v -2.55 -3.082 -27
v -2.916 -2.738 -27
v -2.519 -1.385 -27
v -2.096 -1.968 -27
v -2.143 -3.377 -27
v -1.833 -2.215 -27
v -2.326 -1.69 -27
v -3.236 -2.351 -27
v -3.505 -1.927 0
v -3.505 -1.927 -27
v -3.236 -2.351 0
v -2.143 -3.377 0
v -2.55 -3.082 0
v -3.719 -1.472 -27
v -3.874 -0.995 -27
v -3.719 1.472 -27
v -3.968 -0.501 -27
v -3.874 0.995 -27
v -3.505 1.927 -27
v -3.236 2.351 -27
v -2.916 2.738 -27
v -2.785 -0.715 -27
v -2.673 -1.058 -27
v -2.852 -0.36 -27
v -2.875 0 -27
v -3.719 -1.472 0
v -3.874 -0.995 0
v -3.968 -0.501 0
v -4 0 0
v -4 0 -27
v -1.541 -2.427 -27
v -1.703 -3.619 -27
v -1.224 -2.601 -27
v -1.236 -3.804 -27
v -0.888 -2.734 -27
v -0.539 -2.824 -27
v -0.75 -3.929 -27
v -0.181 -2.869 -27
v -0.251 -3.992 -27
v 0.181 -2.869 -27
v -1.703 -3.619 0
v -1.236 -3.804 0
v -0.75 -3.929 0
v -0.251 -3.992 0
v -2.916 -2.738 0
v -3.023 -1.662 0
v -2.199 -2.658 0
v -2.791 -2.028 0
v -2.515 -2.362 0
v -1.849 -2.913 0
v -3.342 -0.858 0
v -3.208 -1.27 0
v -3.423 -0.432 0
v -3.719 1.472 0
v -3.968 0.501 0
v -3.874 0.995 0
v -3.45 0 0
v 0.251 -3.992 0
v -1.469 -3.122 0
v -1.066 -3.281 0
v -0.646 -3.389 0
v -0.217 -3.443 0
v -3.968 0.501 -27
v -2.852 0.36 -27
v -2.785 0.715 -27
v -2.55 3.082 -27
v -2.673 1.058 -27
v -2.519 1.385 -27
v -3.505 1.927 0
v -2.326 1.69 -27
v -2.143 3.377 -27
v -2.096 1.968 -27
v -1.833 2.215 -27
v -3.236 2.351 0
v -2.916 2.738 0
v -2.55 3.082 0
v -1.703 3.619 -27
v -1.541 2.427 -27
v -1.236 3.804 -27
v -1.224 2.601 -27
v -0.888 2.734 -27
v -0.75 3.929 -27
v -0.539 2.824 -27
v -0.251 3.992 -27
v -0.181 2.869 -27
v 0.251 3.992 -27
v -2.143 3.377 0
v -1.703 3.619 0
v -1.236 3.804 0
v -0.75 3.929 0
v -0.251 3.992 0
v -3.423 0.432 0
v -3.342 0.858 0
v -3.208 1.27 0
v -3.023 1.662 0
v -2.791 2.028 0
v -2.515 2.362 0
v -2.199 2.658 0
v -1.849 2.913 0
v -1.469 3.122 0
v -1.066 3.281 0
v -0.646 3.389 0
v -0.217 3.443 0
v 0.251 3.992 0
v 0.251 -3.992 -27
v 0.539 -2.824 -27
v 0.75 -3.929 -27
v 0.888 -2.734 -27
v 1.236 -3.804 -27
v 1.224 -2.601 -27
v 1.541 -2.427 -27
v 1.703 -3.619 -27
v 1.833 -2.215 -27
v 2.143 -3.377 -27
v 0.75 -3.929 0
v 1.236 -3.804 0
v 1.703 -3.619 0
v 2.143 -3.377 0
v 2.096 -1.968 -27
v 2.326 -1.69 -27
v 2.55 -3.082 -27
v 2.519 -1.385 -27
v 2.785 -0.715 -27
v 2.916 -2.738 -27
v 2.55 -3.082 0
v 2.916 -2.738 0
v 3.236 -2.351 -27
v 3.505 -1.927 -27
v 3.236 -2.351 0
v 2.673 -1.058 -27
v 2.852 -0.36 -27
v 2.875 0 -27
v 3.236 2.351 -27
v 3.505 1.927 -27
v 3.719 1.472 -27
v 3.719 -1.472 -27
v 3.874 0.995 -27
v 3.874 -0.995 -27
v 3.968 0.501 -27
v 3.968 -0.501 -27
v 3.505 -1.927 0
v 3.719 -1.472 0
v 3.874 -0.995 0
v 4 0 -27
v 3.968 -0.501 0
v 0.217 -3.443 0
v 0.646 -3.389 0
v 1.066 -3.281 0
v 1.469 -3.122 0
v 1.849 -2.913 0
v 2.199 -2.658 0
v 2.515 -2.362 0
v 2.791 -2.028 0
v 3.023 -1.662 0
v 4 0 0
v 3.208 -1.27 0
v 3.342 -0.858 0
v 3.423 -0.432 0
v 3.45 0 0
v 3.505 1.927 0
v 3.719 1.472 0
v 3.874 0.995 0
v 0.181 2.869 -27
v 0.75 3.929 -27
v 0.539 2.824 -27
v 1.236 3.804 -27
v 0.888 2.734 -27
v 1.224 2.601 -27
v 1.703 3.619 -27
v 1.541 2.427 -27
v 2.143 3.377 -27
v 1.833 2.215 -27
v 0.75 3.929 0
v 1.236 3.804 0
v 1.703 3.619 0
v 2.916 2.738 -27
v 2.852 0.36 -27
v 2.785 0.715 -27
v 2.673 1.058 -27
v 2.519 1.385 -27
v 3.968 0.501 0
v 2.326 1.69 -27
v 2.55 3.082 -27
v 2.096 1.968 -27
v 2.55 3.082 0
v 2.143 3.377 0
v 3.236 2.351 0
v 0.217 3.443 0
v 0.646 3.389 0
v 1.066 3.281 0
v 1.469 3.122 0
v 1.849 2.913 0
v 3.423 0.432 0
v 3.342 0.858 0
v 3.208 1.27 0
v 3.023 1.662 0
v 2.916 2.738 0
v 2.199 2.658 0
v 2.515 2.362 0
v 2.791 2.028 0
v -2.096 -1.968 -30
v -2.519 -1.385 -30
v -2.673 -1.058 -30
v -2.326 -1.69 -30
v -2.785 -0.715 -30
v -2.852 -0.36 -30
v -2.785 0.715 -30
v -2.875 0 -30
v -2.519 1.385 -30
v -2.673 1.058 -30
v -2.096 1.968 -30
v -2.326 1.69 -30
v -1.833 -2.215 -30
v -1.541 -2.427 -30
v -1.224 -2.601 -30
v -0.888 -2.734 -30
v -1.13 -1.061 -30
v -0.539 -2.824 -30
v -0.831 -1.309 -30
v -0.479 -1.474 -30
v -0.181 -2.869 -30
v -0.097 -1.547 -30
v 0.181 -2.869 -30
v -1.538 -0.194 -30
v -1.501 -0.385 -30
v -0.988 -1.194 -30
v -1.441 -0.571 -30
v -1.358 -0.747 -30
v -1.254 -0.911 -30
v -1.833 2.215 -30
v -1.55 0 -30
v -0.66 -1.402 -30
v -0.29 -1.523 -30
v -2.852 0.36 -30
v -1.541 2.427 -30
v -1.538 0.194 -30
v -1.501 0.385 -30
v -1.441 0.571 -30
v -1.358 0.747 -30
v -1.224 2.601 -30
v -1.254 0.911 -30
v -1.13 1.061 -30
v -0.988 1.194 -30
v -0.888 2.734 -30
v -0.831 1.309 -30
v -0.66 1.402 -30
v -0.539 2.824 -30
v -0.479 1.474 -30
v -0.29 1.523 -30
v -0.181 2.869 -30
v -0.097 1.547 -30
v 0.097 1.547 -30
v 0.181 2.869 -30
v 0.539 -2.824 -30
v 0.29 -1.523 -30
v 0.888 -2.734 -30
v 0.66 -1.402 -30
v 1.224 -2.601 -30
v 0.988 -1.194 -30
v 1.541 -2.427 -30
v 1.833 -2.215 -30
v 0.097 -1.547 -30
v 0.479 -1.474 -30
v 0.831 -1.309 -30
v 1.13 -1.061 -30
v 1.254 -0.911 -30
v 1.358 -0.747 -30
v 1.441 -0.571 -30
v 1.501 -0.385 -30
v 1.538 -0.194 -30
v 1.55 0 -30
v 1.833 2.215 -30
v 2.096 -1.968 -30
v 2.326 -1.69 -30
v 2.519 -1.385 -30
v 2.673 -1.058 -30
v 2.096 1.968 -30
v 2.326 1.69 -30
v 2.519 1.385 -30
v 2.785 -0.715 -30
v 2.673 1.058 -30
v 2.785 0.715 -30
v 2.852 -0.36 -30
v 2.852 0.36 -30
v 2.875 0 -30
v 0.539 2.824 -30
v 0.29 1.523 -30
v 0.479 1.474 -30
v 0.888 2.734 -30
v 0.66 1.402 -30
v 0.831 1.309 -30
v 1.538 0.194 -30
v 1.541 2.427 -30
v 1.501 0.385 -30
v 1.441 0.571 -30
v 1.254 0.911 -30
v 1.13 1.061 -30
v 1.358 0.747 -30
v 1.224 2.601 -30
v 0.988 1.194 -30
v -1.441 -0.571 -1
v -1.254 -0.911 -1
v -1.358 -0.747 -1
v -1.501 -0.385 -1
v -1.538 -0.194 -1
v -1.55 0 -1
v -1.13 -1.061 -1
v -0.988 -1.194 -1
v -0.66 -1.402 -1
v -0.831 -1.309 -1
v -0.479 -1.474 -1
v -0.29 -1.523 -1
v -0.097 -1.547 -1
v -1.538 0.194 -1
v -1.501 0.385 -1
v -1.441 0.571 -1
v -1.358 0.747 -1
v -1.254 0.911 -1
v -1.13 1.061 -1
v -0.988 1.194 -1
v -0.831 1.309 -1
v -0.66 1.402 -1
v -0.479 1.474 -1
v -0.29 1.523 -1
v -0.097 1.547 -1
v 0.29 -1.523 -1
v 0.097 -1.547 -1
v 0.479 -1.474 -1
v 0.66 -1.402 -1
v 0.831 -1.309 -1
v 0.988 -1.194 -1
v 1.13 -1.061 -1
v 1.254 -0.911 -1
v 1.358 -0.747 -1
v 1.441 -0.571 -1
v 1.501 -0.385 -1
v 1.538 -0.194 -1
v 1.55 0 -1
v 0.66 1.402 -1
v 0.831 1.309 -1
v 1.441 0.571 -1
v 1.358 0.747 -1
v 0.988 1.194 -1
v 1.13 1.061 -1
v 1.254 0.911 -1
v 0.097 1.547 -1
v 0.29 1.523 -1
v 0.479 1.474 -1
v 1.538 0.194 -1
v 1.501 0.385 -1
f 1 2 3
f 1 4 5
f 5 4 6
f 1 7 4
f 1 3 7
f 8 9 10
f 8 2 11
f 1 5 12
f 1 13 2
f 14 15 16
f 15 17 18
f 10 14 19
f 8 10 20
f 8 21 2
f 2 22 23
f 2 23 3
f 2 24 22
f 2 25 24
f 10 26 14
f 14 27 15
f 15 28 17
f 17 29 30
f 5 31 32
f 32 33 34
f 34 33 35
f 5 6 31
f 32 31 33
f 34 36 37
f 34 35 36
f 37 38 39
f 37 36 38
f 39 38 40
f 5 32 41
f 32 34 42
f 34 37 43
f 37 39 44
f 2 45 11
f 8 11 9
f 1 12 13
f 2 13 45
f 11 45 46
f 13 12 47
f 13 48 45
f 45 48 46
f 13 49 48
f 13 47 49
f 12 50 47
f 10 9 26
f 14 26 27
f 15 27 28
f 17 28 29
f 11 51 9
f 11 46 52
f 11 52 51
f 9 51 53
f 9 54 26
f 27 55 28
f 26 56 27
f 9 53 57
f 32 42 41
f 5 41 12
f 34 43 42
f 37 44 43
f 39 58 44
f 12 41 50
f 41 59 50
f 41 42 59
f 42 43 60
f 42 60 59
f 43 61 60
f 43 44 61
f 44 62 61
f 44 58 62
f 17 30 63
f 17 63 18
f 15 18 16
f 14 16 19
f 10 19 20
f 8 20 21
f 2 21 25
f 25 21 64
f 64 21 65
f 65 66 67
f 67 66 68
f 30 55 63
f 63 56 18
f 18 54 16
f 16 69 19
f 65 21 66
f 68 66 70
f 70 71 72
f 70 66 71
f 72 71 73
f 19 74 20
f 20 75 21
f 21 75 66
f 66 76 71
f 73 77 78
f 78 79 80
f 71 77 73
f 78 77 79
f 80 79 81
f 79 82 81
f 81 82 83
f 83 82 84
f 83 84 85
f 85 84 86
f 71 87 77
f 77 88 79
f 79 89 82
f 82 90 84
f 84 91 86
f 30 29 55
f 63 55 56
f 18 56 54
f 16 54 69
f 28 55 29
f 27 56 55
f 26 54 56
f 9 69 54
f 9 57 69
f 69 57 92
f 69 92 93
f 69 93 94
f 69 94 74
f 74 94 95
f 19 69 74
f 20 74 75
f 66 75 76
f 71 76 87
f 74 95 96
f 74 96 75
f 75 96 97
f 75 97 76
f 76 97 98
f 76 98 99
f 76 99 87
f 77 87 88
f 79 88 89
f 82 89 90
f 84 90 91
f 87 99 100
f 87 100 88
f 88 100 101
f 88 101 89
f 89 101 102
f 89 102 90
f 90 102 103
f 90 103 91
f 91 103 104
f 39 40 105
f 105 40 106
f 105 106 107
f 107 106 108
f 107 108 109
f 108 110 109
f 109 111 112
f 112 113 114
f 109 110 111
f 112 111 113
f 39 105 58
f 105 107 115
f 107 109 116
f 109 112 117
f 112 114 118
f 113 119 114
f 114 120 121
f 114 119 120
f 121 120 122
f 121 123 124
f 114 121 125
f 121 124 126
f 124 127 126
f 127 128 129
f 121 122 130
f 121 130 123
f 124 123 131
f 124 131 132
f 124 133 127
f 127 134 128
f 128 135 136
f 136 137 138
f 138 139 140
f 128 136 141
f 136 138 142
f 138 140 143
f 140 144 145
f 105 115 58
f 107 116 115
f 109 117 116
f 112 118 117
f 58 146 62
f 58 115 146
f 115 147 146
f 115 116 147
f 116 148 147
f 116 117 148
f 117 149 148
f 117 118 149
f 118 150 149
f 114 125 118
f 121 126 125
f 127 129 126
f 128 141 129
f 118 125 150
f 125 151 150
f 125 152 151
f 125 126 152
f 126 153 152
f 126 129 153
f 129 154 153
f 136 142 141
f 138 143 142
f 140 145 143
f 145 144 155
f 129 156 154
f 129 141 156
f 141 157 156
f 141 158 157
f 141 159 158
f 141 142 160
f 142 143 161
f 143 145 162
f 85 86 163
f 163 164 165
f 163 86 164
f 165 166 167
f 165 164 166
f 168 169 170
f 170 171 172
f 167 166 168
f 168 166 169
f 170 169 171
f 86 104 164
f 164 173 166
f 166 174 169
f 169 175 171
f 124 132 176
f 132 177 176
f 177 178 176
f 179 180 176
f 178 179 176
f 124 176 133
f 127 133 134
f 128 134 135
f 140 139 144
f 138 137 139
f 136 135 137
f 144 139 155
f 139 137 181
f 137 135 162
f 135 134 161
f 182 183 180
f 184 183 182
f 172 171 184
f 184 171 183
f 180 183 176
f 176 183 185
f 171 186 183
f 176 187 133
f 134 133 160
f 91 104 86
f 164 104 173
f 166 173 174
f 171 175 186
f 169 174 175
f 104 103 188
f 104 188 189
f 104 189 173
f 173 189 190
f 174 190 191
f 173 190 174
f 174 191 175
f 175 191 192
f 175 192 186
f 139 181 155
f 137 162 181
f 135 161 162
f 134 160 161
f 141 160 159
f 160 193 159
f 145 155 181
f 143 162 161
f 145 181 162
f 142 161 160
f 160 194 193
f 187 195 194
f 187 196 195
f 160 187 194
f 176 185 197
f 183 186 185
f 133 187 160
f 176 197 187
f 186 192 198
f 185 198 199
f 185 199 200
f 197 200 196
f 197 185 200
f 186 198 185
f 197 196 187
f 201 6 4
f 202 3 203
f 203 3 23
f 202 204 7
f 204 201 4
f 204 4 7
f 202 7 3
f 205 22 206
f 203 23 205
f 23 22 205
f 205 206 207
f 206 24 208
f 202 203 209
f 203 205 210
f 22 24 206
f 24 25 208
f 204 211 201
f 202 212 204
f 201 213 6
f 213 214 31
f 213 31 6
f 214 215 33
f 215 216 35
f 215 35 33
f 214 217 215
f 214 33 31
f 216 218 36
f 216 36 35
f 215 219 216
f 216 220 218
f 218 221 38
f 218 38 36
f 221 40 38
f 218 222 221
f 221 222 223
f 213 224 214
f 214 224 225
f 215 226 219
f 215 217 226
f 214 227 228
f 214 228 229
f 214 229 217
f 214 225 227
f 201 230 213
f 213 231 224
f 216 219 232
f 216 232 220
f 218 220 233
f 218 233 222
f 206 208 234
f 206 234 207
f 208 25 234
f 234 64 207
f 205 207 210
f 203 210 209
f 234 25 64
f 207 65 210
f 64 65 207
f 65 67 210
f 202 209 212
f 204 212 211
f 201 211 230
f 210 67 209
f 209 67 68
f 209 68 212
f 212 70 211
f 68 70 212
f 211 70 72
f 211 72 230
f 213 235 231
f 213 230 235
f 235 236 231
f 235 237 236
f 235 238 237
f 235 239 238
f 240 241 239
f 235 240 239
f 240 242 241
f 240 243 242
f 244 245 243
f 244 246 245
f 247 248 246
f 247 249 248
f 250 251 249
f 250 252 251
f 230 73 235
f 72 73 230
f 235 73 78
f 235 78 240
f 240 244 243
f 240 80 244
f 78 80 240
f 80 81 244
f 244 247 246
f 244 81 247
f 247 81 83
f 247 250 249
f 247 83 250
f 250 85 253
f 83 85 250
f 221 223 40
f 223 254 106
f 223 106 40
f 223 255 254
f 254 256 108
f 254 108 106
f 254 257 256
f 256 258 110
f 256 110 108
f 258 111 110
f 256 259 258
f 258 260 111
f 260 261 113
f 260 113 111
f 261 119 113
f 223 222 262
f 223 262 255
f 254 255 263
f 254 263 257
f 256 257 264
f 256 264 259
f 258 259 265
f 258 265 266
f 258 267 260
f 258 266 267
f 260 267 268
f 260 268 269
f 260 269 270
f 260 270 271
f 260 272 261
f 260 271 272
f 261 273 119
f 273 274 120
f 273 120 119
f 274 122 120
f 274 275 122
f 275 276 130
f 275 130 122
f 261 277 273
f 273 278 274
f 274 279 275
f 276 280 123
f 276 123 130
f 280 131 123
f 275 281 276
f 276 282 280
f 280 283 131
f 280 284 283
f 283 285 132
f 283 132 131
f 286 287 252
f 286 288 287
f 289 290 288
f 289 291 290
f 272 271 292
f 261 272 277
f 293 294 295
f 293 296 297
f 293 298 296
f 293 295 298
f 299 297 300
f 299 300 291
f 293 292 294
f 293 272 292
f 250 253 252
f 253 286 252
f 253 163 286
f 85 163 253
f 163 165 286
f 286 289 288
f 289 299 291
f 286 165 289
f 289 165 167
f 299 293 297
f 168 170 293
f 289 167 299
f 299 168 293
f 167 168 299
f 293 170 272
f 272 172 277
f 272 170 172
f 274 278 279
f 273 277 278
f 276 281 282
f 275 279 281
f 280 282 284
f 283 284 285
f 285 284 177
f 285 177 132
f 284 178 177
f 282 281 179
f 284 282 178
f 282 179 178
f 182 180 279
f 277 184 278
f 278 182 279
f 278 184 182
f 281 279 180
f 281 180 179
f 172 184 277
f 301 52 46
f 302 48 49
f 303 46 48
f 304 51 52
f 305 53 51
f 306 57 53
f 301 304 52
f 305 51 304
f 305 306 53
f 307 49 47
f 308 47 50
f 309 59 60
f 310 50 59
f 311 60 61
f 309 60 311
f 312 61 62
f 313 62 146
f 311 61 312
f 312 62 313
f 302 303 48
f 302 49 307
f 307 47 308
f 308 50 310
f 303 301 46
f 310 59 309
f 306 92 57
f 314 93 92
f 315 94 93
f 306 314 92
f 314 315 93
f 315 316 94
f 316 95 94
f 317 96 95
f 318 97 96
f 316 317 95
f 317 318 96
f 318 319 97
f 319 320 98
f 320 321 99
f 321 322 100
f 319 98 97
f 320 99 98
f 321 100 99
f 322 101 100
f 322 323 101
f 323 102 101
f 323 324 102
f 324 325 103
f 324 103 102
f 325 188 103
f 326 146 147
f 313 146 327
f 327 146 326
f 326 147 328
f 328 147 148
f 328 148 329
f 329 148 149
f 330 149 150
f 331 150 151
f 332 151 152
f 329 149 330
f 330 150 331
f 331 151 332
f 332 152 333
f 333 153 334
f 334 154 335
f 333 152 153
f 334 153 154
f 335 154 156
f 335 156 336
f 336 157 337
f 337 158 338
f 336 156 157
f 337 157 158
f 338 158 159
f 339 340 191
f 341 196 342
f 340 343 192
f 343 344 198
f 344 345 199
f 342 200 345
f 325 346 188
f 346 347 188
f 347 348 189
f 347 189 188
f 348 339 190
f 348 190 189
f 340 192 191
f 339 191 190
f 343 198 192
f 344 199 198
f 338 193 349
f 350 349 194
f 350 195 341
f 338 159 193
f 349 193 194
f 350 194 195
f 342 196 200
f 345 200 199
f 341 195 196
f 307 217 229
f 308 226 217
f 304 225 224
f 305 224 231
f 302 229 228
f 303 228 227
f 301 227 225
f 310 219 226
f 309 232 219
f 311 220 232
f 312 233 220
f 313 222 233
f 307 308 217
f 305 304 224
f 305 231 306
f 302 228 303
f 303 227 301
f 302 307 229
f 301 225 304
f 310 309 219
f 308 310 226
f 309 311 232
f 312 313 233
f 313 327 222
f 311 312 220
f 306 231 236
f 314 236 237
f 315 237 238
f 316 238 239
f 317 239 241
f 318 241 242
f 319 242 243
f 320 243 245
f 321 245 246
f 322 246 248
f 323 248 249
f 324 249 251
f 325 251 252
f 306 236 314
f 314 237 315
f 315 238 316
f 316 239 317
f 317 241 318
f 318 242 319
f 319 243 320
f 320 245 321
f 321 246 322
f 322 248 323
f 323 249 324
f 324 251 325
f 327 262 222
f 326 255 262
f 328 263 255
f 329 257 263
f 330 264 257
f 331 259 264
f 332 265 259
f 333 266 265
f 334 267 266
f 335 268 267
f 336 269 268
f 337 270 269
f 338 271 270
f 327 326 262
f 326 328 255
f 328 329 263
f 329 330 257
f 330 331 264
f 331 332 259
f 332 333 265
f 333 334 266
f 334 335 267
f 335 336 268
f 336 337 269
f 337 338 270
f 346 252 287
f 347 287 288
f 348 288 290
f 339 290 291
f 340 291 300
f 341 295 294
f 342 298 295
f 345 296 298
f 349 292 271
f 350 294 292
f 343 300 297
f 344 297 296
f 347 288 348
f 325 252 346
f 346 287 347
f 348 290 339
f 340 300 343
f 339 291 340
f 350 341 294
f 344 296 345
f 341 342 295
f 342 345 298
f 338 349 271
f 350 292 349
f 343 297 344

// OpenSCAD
$fn = 50;

difference() {
	union() {
		translate(v = [0, 0, -27.0]) {
			cylinder(h = 27, r = 4.0);
		}
		#translate(v = [0, 0, -30.0]) {
			cylinder(h = 30, r = 2.875);
		}
	}
	union() {
		translate(v = [0, 0, 0]) {
			rotate(a = [0, 0, 0]) {
				difference() {
					union() {
						translate(v = [0, 0, -30.0]) {
							cylinder(h = 30, r = 1.25);
						}
						translate(v = [0, 0, -1.0]) {
							cylinder(h = 1.0, r1 = 1.55, r2 = 3.45);
						}
						translate(v = [0, 0, -30.0]) {
							cylinder(h = 30, r = 1.55);
						}
						translate(v = [0, 0, -30.0]) {
							cylinder(h = 30, r = 1.25);
						}
					}
					union();
				}
			}
		}
	}
}
